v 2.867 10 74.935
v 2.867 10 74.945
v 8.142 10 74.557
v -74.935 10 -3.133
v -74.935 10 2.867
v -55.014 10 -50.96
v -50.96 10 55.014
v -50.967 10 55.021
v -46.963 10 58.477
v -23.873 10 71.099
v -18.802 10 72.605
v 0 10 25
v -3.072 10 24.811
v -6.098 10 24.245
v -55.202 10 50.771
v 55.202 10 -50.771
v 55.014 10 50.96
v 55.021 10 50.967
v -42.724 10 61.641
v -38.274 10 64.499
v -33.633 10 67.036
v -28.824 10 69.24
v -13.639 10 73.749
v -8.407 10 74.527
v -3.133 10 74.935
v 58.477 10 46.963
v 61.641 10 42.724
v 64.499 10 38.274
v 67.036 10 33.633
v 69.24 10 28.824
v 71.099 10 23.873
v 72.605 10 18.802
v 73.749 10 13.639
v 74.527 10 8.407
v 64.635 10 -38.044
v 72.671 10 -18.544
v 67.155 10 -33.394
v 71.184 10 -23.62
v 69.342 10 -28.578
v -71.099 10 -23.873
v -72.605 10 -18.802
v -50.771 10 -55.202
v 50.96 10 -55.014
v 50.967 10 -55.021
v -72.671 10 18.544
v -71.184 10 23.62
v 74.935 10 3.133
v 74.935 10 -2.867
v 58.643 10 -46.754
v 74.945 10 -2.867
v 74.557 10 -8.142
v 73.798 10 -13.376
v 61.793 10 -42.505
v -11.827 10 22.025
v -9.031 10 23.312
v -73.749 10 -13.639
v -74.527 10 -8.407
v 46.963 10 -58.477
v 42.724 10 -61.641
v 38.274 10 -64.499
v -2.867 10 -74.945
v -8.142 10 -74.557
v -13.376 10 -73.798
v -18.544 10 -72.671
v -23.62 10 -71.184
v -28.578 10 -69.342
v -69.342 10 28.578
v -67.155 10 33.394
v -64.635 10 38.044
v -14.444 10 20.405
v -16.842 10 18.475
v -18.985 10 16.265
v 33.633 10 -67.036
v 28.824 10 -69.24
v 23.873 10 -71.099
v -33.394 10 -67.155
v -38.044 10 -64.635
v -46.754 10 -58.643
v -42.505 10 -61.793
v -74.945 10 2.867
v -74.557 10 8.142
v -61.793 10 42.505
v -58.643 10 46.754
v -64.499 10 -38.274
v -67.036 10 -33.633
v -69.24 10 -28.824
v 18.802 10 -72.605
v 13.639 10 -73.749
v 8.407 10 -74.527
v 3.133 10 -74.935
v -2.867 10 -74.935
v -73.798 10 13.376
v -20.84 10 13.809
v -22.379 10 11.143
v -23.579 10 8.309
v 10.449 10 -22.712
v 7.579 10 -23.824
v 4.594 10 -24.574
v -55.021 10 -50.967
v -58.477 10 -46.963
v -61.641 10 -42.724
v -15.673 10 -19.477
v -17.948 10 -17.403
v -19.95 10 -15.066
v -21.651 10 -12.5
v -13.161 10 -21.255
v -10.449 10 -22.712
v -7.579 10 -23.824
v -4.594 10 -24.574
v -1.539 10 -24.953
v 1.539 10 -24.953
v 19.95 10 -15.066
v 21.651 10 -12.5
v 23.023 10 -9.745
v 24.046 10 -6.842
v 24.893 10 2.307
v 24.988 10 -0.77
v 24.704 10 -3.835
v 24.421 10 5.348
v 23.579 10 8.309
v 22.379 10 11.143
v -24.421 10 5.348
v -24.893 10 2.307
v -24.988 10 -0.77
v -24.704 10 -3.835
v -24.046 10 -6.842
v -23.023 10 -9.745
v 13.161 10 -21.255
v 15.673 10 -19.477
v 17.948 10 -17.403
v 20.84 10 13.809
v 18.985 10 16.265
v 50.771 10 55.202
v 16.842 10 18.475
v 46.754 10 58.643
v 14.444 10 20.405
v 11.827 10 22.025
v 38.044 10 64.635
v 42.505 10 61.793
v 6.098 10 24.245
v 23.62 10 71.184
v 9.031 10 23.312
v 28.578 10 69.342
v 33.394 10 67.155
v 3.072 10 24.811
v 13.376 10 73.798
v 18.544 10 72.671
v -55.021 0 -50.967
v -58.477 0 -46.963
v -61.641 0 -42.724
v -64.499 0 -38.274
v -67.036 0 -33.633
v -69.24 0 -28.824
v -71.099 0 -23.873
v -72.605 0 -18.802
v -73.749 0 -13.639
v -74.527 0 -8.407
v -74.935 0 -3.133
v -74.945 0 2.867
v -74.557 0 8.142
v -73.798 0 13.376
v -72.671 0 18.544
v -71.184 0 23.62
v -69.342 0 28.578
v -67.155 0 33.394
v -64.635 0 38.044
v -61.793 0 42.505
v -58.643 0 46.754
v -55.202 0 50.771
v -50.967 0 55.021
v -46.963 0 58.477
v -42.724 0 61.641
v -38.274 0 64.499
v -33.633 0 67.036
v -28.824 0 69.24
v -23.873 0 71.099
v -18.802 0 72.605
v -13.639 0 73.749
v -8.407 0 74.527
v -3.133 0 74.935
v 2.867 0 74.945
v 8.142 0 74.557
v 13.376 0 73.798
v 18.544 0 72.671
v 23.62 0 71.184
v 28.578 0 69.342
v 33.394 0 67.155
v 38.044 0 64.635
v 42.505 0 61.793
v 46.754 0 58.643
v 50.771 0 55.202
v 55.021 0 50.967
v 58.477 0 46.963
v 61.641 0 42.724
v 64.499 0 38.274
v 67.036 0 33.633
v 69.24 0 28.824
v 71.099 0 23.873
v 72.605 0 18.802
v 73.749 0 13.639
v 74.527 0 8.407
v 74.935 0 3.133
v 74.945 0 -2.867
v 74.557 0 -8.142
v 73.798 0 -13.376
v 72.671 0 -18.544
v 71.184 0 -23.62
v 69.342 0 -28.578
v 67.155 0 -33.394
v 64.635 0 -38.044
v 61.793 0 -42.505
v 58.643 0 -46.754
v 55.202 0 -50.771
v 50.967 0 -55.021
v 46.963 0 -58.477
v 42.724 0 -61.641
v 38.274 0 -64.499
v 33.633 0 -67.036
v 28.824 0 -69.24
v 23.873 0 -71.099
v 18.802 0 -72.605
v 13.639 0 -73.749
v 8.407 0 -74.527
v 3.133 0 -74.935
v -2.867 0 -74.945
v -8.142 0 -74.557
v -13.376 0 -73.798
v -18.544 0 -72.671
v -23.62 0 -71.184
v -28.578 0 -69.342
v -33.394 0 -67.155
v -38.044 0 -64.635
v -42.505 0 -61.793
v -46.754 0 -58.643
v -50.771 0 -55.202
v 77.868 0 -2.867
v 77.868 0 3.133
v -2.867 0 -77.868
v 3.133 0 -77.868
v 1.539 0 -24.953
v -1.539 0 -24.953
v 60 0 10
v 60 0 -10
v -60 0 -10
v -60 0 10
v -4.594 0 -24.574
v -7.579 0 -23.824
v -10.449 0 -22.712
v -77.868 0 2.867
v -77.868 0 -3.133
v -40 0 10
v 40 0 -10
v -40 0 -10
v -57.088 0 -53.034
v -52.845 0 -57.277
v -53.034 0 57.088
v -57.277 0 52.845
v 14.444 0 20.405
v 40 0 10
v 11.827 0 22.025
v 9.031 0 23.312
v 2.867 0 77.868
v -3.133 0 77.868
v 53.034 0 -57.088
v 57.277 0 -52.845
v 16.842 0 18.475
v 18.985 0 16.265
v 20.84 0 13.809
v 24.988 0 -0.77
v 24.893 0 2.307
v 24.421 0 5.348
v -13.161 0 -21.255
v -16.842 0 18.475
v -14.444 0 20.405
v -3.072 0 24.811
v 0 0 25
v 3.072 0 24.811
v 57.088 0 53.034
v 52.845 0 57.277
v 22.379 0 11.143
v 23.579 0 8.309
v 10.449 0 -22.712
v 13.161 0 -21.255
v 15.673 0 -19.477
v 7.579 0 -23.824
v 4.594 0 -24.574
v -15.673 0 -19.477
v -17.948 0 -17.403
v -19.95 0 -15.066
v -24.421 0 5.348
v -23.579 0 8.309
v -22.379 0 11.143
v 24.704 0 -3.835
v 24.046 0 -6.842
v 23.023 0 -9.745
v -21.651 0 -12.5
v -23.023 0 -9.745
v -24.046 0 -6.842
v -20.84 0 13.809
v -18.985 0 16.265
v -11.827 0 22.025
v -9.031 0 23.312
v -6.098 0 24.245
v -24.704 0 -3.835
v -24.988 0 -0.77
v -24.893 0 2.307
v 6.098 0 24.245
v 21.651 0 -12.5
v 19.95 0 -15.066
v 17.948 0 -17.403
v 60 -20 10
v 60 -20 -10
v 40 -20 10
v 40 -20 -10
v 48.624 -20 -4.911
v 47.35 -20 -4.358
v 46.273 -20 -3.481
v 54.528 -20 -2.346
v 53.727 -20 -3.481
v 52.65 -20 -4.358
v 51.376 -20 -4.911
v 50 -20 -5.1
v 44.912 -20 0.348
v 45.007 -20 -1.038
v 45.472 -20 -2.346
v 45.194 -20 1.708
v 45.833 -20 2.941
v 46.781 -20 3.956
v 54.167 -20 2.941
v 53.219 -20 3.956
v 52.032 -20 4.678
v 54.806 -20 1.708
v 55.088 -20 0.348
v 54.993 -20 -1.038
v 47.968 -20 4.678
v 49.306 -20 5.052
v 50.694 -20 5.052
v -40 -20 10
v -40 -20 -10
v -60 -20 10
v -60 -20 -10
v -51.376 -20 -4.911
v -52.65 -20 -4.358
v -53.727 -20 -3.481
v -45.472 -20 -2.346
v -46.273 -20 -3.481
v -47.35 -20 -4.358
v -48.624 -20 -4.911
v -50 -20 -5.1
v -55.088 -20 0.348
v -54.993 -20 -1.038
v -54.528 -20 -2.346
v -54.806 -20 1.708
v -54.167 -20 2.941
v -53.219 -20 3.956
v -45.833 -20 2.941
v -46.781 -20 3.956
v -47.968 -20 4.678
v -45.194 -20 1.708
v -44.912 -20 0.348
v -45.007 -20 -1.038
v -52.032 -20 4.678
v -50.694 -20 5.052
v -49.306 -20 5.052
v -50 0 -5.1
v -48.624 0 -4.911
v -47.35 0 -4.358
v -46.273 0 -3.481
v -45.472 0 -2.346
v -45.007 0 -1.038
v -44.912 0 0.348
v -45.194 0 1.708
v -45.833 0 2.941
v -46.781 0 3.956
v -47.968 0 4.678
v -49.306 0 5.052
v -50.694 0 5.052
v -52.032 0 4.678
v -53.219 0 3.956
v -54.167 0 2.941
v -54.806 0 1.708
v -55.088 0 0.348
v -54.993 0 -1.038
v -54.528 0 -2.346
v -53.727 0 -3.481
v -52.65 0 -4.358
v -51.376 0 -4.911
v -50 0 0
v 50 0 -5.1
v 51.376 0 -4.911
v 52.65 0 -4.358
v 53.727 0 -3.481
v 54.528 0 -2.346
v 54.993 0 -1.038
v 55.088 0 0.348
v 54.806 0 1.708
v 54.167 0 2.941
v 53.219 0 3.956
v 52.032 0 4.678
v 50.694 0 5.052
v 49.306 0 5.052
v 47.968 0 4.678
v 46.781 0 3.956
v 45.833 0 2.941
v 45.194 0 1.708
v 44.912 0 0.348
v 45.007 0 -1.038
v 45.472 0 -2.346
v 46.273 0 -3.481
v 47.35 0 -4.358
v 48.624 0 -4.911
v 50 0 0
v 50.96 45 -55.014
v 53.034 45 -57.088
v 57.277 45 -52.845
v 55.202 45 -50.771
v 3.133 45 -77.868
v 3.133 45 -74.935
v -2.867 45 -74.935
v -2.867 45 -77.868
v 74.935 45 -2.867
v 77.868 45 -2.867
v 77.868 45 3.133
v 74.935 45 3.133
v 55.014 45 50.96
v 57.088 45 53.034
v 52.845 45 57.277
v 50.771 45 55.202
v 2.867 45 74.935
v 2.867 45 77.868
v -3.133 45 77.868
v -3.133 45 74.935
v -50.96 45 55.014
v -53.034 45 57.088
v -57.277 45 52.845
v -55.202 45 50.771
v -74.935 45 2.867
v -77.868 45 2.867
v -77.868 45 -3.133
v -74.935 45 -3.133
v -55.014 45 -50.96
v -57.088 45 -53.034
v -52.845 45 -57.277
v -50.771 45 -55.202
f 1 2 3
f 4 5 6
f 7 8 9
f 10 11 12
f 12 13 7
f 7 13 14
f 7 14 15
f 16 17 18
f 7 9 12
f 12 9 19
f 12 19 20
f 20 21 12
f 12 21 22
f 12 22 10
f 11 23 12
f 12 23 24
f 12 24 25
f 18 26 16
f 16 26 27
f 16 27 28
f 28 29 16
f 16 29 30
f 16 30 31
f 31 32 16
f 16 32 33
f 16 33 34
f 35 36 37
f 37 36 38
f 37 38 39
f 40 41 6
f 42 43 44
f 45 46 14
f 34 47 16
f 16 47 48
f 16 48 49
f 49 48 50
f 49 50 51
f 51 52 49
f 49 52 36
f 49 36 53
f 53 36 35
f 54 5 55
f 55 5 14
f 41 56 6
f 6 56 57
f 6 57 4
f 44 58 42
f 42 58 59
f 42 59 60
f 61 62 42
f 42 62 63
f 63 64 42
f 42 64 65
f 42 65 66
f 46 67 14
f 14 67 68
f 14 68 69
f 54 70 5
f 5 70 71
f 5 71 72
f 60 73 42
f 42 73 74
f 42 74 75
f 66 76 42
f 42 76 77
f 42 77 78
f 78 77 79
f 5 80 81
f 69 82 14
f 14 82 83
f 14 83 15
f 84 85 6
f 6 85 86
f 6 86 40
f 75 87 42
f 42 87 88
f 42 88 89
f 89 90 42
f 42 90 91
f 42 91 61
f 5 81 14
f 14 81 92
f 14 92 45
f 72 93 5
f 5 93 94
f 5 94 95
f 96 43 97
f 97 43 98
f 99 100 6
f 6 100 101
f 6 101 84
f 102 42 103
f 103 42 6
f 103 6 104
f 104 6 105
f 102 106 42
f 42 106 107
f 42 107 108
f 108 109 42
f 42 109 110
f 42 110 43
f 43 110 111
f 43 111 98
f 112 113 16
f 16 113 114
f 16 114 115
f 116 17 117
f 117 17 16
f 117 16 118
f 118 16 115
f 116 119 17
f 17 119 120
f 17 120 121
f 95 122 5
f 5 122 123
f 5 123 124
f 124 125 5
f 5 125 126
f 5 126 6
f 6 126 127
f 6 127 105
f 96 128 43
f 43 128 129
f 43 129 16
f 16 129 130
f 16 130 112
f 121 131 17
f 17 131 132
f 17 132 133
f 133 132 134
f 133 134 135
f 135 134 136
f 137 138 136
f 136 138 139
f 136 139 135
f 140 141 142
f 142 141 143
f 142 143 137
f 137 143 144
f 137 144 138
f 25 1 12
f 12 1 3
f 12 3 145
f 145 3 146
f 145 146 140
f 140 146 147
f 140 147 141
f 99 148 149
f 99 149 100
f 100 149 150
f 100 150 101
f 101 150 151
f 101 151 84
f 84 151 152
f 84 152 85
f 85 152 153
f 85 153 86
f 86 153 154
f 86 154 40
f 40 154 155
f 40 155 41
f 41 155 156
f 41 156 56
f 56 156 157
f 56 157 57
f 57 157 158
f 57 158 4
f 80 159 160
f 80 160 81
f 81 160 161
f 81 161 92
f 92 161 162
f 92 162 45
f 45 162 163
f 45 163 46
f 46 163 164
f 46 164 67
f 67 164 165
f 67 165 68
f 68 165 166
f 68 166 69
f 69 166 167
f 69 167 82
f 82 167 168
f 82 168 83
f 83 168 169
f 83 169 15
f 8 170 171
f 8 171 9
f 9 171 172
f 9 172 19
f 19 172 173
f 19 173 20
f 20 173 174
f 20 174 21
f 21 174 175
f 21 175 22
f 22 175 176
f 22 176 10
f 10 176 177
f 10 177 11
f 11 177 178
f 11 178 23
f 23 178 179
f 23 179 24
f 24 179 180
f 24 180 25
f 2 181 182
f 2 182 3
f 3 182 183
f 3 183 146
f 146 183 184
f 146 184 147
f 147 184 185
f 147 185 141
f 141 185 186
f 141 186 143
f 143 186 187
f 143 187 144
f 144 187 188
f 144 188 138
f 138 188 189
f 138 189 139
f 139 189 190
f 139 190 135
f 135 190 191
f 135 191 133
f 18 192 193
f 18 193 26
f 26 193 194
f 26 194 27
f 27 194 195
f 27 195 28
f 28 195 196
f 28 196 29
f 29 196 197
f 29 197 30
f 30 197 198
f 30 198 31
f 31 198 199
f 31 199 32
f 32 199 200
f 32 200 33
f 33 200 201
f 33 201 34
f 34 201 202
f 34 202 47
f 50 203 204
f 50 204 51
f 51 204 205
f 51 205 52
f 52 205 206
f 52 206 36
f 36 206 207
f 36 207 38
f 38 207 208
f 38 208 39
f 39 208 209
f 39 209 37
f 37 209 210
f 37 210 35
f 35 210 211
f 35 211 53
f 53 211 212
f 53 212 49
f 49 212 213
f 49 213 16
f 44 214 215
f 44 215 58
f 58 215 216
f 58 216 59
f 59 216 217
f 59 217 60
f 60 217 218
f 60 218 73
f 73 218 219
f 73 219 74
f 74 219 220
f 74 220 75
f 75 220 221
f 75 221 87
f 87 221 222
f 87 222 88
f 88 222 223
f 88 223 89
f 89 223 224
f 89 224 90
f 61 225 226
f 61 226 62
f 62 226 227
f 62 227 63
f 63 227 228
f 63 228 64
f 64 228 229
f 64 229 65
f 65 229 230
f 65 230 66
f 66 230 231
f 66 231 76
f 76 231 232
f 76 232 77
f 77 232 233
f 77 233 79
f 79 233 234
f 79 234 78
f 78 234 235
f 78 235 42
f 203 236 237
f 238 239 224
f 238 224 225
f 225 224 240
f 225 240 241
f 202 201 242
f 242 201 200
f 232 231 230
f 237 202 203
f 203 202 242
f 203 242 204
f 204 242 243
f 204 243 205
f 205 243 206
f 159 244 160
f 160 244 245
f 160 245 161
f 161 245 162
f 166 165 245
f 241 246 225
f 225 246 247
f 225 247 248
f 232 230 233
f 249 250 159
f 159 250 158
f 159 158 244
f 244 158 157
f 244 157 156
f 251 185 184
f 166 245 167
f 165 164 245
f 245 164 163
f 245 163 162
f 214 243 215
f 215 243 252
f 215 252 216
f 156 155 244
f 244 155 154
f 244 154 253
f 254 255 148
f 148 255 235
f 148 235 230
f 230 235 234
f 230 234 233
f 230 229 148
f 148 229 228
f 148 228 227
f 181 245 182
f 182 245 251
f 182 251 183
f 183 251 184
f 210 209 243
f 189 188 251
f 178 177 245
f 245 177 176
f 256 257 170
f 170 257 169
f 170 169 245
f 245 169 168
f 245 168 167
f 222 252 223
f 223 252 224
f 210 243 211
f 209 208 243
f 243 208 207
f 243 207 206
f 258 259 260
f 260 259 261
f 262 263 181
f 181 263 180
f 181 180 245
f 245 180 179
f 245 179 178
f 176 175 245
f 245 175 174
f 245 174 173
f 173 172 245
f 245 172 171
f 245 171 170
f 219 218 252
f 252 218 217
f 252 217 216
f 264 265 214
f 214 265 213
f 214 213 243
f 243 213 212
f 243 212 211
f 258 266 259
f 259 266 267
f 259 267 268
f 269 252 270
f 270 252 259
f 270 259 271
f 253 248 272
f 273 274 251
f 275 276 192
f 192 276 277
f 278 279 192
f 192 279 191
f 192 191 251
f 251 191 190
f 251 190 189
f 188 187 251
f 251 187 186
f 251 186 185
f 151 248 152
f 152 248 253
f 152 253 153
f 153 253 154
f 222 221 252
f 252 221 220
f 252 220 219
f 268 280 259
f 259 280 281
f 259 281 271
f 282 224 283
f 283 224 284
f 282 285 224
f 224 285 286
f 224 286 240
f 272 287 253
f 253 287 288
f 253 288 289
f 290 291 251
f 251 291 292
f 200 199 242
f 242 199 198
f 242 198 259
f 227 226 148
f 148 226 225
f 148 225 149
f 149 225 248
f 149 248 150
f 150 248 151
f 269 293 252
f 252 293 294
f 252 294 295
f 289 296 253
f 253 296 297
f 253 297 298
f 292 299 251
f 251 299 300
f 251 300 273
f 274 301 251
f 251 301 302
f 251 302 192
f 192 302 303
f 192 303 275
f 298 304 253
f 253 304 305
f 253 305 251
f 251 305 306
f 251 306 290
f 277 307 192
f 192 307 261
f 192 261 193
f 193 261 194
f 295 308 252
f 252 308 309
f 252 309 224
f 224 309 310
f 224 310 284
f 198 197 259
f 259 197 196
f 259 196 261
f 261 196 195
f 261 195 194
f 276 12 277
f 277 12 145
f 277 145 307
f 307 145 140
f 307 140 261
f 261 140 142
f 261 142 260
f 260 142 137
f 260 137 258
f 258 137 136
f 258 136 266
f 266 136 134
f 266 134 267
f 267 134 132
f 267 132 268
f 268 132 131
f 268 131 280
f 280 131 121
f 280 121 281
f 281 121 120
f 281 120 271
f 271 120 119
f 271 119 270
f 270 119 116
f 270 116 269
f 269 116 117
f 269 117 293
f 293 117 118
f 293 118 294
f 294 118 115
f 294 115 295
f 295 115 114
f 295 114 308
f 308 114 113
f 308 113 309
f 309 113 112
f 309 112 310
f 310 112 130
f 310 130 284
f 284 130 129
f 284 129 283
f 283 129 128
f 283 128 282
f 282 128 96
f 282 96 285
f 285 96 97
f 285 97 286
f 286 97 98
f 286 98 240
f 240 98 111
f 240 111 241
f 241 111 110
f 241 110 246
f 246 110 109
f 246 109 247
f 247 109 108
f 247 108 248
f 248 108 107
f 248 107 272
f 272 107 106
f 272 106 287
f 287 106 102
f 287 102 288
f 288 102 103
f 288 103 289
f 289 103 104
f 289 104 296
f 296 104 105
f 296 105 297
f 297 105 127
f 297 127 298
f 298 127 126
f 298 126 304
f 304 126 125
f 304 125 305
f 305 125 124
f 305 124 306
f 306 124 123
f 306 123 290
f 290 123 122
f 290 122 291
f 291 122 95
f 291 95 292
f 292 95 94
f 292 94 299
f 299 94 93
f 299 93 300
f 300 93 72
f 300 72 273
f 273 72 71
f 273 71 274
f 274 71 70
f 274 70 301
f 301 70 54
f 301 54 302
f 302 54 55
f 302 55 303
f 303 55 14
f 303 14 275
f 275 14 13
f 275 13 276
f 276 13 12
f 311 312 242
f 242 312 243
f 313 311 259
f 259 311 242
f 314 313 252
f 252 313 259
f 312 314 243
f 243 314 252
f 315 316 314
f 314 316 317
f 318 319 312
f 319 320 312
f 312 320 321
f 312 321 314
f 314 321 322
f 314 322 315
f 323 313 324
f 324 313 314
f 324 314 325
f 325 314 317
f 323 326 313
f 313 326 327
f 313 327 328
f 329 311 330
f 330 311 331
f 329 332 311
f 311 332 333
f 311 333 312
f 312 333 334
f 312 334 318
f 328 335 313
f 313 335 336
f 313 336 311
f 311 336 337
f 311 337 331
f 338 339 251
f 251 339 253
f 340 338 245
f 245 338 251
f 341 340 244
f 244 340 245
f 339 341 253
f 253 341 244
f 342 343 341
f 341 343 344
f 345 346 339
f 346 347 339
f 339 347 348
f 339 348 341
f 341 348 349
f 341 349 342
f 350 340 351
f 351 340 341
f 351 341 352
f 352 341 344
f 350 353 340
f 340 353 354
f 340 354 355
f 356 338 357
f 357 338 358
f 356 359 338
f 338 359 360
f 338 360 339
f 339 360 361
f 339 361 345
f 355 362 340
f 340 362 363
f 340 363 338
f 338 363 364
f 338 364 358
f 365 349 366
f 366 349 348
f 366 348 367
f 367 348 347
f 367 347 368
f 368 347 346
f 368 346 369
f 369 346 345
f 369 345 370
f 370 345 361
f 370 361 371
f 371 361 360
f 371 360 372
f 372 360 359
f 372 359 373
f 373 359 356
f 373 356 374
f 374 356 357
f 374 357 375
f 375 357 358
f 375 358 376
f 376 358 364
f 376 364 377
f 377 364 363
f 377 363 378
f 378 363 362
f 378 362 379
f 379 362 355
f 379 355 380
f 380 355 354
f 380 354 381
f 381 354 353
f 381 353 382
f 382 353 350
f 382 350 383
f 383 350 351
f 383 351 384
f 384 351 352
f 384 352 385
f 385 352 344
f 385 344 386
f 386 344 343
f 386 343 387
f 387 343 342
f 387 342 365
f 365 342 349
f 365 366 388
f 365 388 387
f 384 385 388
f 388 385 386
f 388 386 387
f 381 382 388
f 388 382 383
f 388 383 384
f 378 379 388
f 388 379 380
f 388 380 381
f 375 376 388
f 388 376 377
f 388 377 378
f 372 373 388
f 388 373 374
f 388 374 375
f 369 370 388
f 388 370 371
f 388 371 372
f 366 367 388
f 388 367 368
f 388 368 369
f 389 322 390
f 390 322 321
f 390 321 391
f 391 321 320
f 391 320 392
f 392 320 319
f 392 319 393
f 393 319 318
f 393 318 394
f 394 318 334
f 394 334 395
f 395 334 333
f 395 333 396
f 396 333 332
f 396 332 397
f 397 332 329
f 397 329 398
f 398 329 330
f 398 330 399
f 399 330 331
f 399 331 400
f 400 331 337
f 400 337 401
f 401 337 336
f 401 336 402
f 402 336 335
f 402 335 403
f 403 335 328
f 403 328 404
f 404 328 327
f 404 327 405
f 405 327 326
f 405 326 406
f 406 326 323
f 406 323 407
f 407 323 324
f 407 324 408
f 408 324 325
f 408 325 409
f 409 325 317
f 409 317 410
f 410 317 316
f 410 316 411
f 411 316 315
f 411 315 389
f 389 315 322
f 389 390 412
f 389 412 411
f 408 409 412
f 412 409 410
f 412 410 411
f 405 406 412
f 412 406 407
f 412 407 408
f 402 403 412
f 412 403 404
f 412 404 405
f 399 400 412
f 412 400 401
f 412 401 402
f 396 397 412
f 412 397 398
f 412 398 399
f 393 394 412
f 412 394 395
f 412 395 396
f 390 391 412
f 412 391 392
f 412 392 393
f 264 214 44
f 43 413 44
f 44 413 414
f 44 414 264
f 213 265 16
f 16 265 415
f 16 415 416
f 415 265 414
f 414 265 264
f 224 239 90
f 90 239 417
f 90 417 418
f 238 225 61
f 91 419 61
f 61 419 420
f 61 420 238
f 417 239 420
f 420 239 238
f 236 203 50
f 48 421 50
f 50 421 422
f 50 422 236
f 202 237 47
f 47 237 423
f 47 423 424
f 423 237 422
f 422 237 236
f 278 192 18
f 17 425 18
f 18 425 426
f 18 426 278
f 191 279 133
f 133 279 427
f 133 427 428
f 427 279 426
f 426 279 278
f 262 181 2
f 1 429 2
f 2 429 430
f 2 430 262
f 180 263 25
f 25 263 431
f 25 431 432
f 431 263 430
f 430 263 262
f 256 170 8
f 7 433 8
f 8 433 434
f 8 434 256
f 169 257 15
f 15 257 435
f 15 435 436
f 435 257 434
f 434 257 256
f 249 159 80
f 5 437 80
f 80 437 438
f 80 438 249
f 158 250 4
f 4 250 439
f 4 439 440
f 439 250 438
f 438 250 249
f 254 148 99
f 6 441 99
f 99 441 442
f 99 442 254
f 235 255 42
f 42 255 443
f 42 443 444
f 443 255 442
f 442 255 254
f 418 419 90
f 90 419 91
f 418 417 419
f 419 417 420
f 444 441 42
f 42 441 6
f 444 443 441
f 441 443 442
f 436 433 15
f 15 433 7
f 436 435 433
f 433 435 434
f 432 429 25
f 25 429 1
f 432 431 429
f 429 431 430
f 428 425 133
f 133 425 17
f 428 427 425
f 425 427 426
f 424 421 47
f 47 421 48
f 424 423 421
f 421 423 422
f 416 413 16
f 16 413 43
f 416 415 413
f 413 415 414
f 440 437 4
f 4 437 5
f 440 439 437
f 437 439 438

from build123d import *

# Parameters (mm, degrees)
SKETCH1_R           = 75
BOSS_EXTRUDE1_DEPTH = 10
SKETCH2_R           = 25
CUT_EXTRUDE1_DEPTH  = 10
SKETCH3_W           = 20
SKETCH3_H           = 20
BOSS_EXTRUDE2_DEPTH = 20
SKETCH4_R           = 5.1
CUT_EXTRUDE2_DEPTH  = 20
SKETCH5_W           = 6
SKETCH5_H           = 3.326162104
SKETCH5_W_2         = 3.326162104
SKETCH5_H_2         = 6
BOSS_EXTRUDE3_DEPTH = 10
SKETCH6_W           = 2.933357957
SKETCH6_H           = 6
BOSS_EXTRUDE4_DEPTH = 35


with BuildPart() as part:
    # Sketch1 → Boss-Extrude1 (new body)
    with BuildSketch(Plane(origin=(0, 0, 0), x_dir=(1, 0, 0), z_dir=(0, 1, 0))):
        with Locations(Location((0, 0, 0), (0, 0, 270))):
            Circle(SKETCH1_R)
    extrude(amount=BOSS_EXTRUDE1_DEPTH)

    # Sketch2 → Cut-Extrude1 (cut)
    with BuildSketch(Plane(origin=(0, 10, 0), x_dir=(1, 0, 0), z_dir=(0, 1, 0))):
        with Locations(Location((0, 0, 0), (0, 0, 270))):
            Circle(SKETCH2_R)
    extrude(amount=-CUT_EXTRUDE1_DEPTH, mode=Mode.SUBTRACT)

    # Sketch3 → Boss-Extrude2 (add)
    with BuildSketch(Plane.XZ):
        with Locations((50, 0)):
            Rectangle(SKETCH3_W, SKETCH3_H)
        with Locations((-50, 0)):
            Rectangle(SKETCH3_W, SKETCH3_H)
    extrude(amount=BOSS_EXTRUDE2_DEPTH)

    # Sketch4 → Cut-Extrude2 (cut)
    with BuildSketch(Plane.XZ.offset(20)):
        with Locations(Location((-50, 0, 0), (0, 0, 270))):
            Circle(SKETCH4_R)
        with Locations(Location((50, 0, 0), (0, 0, 270))):
            Circle(SKETCH4_R)
    extrude(amount=-CUT_EXTRUDE2_DEPTH, mode=Mode.SUBTRACT)

    # Sketch5 → Boss-Extrude3 (add)
    with BuildSketch(Plane(origin=(0, 10, 0), x_dir=(1, 0, 0), z_dir=(0, 1, 0))):
        Polygon((53.03387152, 57.087936355), (50.681919741, 54.735984576), (54.924560428, 50.493343889), (57.276512207, 52.845295668), align=None)
        with Locations((0.133343264, 76.204796053)):
            Rectangle(SKETCH5_W, SKETCH5_H)
        with Locations((76.204796053, -0.133343264)):
            Rectangle(SKETCH5_W_2, SKETCH5_H_2)
        Polygon((57.087936355, -53.03387152), (54.735984576, -50.681919741), (50.493343889, -54.924560428), (52.845295668, -57.276512207), align=None)
        with Locations((-0.133343264, -76.204796053)):
            Rectangle(SKETCH5_W, SKETCH5_H)
        Polygon((-53.03387152, -57.087936355), (-50.681919741, -54.735984576), (-54.924560428, -50.493343889), (-57.276512207, -52.845295668), align=None)
        with Locations((-76.204796053, 0.133343264)):
            Rectangle(SKETCH5_W_2, SKETCH5_H_2)
        Polygon((-57.087936355, 53.03387152), (-54.735984576, 50.681919741), (-50.493343889, 54.924560428), (-52.845295668, 57.276512207), align=None)
    extrude(amount=-BOSS_EXTRUDE3_DEPTH)

    # Sketch6 → Boss-Extrude4 (add)
    with BuildSketch(Plane(origin=(0, 10, 0), x_dir=(1, 0, 0), z_dir=(0, 1, 0))):
        Polygon((-2.866656736, 74.934519148), (0.128320094, 74.934519148), (0.133343264, 77.867877105), (-2.866656736, 77.867877105), (-2.866656736, 74.945195171), align=None)
        Polygon((0.133343264, 77.867877105), (0.128320094, 74.934519148), (3.133343264, 74.934519148), (3.133343264, 77.867877105), align=None)
        Polygon((-52.845295668, 57.276512207), (-57.087936355, 53.03387152), (-55.02128814, 50.967223305), (-55.013739052, 50.959674217), (-50.771098365, 55.202314904), align=None)
        Polygon((-57.276512207, -52.845295668), (-53.03387152, -57.087936355), (-50.967223305, -55.02128814), (-50.959674217, -55.013739052), (-55.202314904, -50.771098365), align=None)
        Polygon((-3.133343264, -77.867877105), (2.866656736, -77.867877105), (2.866656736, -74.945195171), (2.866656736, -74.934519148), (-3.133343264, -74.934519148), align=None)
        Polygon((52.845295668, -57.276512207), (57.087936355, -53.03387152), (55.02128814, -50.967223305), (55.013739052, -50.959674217), (50.771098365, -55.202314904), align=None)
        Polygon((77.867877105, -3.133343264), (77.867877105, 2.866656736), (74.945195171, 2.866656736), (74.934519148, 2.866656736), (74.934519148, -3.133343264), align=None)
        Polygon((57.276512207, 52.845295668), (53.03387152, 57.087936355), (50.967223305, 55.02128814), (50.959674217, 55.013739052), (55.202314904, 50.771098365), align=None)
        with Locations((-76.401198127, 0.133343264)):
            Rectangle(SKETCH6_W, SKETCH6_H)
    extrude(amount=BOSS_EXTRUDE4_DEPTH)


solid = part.part
